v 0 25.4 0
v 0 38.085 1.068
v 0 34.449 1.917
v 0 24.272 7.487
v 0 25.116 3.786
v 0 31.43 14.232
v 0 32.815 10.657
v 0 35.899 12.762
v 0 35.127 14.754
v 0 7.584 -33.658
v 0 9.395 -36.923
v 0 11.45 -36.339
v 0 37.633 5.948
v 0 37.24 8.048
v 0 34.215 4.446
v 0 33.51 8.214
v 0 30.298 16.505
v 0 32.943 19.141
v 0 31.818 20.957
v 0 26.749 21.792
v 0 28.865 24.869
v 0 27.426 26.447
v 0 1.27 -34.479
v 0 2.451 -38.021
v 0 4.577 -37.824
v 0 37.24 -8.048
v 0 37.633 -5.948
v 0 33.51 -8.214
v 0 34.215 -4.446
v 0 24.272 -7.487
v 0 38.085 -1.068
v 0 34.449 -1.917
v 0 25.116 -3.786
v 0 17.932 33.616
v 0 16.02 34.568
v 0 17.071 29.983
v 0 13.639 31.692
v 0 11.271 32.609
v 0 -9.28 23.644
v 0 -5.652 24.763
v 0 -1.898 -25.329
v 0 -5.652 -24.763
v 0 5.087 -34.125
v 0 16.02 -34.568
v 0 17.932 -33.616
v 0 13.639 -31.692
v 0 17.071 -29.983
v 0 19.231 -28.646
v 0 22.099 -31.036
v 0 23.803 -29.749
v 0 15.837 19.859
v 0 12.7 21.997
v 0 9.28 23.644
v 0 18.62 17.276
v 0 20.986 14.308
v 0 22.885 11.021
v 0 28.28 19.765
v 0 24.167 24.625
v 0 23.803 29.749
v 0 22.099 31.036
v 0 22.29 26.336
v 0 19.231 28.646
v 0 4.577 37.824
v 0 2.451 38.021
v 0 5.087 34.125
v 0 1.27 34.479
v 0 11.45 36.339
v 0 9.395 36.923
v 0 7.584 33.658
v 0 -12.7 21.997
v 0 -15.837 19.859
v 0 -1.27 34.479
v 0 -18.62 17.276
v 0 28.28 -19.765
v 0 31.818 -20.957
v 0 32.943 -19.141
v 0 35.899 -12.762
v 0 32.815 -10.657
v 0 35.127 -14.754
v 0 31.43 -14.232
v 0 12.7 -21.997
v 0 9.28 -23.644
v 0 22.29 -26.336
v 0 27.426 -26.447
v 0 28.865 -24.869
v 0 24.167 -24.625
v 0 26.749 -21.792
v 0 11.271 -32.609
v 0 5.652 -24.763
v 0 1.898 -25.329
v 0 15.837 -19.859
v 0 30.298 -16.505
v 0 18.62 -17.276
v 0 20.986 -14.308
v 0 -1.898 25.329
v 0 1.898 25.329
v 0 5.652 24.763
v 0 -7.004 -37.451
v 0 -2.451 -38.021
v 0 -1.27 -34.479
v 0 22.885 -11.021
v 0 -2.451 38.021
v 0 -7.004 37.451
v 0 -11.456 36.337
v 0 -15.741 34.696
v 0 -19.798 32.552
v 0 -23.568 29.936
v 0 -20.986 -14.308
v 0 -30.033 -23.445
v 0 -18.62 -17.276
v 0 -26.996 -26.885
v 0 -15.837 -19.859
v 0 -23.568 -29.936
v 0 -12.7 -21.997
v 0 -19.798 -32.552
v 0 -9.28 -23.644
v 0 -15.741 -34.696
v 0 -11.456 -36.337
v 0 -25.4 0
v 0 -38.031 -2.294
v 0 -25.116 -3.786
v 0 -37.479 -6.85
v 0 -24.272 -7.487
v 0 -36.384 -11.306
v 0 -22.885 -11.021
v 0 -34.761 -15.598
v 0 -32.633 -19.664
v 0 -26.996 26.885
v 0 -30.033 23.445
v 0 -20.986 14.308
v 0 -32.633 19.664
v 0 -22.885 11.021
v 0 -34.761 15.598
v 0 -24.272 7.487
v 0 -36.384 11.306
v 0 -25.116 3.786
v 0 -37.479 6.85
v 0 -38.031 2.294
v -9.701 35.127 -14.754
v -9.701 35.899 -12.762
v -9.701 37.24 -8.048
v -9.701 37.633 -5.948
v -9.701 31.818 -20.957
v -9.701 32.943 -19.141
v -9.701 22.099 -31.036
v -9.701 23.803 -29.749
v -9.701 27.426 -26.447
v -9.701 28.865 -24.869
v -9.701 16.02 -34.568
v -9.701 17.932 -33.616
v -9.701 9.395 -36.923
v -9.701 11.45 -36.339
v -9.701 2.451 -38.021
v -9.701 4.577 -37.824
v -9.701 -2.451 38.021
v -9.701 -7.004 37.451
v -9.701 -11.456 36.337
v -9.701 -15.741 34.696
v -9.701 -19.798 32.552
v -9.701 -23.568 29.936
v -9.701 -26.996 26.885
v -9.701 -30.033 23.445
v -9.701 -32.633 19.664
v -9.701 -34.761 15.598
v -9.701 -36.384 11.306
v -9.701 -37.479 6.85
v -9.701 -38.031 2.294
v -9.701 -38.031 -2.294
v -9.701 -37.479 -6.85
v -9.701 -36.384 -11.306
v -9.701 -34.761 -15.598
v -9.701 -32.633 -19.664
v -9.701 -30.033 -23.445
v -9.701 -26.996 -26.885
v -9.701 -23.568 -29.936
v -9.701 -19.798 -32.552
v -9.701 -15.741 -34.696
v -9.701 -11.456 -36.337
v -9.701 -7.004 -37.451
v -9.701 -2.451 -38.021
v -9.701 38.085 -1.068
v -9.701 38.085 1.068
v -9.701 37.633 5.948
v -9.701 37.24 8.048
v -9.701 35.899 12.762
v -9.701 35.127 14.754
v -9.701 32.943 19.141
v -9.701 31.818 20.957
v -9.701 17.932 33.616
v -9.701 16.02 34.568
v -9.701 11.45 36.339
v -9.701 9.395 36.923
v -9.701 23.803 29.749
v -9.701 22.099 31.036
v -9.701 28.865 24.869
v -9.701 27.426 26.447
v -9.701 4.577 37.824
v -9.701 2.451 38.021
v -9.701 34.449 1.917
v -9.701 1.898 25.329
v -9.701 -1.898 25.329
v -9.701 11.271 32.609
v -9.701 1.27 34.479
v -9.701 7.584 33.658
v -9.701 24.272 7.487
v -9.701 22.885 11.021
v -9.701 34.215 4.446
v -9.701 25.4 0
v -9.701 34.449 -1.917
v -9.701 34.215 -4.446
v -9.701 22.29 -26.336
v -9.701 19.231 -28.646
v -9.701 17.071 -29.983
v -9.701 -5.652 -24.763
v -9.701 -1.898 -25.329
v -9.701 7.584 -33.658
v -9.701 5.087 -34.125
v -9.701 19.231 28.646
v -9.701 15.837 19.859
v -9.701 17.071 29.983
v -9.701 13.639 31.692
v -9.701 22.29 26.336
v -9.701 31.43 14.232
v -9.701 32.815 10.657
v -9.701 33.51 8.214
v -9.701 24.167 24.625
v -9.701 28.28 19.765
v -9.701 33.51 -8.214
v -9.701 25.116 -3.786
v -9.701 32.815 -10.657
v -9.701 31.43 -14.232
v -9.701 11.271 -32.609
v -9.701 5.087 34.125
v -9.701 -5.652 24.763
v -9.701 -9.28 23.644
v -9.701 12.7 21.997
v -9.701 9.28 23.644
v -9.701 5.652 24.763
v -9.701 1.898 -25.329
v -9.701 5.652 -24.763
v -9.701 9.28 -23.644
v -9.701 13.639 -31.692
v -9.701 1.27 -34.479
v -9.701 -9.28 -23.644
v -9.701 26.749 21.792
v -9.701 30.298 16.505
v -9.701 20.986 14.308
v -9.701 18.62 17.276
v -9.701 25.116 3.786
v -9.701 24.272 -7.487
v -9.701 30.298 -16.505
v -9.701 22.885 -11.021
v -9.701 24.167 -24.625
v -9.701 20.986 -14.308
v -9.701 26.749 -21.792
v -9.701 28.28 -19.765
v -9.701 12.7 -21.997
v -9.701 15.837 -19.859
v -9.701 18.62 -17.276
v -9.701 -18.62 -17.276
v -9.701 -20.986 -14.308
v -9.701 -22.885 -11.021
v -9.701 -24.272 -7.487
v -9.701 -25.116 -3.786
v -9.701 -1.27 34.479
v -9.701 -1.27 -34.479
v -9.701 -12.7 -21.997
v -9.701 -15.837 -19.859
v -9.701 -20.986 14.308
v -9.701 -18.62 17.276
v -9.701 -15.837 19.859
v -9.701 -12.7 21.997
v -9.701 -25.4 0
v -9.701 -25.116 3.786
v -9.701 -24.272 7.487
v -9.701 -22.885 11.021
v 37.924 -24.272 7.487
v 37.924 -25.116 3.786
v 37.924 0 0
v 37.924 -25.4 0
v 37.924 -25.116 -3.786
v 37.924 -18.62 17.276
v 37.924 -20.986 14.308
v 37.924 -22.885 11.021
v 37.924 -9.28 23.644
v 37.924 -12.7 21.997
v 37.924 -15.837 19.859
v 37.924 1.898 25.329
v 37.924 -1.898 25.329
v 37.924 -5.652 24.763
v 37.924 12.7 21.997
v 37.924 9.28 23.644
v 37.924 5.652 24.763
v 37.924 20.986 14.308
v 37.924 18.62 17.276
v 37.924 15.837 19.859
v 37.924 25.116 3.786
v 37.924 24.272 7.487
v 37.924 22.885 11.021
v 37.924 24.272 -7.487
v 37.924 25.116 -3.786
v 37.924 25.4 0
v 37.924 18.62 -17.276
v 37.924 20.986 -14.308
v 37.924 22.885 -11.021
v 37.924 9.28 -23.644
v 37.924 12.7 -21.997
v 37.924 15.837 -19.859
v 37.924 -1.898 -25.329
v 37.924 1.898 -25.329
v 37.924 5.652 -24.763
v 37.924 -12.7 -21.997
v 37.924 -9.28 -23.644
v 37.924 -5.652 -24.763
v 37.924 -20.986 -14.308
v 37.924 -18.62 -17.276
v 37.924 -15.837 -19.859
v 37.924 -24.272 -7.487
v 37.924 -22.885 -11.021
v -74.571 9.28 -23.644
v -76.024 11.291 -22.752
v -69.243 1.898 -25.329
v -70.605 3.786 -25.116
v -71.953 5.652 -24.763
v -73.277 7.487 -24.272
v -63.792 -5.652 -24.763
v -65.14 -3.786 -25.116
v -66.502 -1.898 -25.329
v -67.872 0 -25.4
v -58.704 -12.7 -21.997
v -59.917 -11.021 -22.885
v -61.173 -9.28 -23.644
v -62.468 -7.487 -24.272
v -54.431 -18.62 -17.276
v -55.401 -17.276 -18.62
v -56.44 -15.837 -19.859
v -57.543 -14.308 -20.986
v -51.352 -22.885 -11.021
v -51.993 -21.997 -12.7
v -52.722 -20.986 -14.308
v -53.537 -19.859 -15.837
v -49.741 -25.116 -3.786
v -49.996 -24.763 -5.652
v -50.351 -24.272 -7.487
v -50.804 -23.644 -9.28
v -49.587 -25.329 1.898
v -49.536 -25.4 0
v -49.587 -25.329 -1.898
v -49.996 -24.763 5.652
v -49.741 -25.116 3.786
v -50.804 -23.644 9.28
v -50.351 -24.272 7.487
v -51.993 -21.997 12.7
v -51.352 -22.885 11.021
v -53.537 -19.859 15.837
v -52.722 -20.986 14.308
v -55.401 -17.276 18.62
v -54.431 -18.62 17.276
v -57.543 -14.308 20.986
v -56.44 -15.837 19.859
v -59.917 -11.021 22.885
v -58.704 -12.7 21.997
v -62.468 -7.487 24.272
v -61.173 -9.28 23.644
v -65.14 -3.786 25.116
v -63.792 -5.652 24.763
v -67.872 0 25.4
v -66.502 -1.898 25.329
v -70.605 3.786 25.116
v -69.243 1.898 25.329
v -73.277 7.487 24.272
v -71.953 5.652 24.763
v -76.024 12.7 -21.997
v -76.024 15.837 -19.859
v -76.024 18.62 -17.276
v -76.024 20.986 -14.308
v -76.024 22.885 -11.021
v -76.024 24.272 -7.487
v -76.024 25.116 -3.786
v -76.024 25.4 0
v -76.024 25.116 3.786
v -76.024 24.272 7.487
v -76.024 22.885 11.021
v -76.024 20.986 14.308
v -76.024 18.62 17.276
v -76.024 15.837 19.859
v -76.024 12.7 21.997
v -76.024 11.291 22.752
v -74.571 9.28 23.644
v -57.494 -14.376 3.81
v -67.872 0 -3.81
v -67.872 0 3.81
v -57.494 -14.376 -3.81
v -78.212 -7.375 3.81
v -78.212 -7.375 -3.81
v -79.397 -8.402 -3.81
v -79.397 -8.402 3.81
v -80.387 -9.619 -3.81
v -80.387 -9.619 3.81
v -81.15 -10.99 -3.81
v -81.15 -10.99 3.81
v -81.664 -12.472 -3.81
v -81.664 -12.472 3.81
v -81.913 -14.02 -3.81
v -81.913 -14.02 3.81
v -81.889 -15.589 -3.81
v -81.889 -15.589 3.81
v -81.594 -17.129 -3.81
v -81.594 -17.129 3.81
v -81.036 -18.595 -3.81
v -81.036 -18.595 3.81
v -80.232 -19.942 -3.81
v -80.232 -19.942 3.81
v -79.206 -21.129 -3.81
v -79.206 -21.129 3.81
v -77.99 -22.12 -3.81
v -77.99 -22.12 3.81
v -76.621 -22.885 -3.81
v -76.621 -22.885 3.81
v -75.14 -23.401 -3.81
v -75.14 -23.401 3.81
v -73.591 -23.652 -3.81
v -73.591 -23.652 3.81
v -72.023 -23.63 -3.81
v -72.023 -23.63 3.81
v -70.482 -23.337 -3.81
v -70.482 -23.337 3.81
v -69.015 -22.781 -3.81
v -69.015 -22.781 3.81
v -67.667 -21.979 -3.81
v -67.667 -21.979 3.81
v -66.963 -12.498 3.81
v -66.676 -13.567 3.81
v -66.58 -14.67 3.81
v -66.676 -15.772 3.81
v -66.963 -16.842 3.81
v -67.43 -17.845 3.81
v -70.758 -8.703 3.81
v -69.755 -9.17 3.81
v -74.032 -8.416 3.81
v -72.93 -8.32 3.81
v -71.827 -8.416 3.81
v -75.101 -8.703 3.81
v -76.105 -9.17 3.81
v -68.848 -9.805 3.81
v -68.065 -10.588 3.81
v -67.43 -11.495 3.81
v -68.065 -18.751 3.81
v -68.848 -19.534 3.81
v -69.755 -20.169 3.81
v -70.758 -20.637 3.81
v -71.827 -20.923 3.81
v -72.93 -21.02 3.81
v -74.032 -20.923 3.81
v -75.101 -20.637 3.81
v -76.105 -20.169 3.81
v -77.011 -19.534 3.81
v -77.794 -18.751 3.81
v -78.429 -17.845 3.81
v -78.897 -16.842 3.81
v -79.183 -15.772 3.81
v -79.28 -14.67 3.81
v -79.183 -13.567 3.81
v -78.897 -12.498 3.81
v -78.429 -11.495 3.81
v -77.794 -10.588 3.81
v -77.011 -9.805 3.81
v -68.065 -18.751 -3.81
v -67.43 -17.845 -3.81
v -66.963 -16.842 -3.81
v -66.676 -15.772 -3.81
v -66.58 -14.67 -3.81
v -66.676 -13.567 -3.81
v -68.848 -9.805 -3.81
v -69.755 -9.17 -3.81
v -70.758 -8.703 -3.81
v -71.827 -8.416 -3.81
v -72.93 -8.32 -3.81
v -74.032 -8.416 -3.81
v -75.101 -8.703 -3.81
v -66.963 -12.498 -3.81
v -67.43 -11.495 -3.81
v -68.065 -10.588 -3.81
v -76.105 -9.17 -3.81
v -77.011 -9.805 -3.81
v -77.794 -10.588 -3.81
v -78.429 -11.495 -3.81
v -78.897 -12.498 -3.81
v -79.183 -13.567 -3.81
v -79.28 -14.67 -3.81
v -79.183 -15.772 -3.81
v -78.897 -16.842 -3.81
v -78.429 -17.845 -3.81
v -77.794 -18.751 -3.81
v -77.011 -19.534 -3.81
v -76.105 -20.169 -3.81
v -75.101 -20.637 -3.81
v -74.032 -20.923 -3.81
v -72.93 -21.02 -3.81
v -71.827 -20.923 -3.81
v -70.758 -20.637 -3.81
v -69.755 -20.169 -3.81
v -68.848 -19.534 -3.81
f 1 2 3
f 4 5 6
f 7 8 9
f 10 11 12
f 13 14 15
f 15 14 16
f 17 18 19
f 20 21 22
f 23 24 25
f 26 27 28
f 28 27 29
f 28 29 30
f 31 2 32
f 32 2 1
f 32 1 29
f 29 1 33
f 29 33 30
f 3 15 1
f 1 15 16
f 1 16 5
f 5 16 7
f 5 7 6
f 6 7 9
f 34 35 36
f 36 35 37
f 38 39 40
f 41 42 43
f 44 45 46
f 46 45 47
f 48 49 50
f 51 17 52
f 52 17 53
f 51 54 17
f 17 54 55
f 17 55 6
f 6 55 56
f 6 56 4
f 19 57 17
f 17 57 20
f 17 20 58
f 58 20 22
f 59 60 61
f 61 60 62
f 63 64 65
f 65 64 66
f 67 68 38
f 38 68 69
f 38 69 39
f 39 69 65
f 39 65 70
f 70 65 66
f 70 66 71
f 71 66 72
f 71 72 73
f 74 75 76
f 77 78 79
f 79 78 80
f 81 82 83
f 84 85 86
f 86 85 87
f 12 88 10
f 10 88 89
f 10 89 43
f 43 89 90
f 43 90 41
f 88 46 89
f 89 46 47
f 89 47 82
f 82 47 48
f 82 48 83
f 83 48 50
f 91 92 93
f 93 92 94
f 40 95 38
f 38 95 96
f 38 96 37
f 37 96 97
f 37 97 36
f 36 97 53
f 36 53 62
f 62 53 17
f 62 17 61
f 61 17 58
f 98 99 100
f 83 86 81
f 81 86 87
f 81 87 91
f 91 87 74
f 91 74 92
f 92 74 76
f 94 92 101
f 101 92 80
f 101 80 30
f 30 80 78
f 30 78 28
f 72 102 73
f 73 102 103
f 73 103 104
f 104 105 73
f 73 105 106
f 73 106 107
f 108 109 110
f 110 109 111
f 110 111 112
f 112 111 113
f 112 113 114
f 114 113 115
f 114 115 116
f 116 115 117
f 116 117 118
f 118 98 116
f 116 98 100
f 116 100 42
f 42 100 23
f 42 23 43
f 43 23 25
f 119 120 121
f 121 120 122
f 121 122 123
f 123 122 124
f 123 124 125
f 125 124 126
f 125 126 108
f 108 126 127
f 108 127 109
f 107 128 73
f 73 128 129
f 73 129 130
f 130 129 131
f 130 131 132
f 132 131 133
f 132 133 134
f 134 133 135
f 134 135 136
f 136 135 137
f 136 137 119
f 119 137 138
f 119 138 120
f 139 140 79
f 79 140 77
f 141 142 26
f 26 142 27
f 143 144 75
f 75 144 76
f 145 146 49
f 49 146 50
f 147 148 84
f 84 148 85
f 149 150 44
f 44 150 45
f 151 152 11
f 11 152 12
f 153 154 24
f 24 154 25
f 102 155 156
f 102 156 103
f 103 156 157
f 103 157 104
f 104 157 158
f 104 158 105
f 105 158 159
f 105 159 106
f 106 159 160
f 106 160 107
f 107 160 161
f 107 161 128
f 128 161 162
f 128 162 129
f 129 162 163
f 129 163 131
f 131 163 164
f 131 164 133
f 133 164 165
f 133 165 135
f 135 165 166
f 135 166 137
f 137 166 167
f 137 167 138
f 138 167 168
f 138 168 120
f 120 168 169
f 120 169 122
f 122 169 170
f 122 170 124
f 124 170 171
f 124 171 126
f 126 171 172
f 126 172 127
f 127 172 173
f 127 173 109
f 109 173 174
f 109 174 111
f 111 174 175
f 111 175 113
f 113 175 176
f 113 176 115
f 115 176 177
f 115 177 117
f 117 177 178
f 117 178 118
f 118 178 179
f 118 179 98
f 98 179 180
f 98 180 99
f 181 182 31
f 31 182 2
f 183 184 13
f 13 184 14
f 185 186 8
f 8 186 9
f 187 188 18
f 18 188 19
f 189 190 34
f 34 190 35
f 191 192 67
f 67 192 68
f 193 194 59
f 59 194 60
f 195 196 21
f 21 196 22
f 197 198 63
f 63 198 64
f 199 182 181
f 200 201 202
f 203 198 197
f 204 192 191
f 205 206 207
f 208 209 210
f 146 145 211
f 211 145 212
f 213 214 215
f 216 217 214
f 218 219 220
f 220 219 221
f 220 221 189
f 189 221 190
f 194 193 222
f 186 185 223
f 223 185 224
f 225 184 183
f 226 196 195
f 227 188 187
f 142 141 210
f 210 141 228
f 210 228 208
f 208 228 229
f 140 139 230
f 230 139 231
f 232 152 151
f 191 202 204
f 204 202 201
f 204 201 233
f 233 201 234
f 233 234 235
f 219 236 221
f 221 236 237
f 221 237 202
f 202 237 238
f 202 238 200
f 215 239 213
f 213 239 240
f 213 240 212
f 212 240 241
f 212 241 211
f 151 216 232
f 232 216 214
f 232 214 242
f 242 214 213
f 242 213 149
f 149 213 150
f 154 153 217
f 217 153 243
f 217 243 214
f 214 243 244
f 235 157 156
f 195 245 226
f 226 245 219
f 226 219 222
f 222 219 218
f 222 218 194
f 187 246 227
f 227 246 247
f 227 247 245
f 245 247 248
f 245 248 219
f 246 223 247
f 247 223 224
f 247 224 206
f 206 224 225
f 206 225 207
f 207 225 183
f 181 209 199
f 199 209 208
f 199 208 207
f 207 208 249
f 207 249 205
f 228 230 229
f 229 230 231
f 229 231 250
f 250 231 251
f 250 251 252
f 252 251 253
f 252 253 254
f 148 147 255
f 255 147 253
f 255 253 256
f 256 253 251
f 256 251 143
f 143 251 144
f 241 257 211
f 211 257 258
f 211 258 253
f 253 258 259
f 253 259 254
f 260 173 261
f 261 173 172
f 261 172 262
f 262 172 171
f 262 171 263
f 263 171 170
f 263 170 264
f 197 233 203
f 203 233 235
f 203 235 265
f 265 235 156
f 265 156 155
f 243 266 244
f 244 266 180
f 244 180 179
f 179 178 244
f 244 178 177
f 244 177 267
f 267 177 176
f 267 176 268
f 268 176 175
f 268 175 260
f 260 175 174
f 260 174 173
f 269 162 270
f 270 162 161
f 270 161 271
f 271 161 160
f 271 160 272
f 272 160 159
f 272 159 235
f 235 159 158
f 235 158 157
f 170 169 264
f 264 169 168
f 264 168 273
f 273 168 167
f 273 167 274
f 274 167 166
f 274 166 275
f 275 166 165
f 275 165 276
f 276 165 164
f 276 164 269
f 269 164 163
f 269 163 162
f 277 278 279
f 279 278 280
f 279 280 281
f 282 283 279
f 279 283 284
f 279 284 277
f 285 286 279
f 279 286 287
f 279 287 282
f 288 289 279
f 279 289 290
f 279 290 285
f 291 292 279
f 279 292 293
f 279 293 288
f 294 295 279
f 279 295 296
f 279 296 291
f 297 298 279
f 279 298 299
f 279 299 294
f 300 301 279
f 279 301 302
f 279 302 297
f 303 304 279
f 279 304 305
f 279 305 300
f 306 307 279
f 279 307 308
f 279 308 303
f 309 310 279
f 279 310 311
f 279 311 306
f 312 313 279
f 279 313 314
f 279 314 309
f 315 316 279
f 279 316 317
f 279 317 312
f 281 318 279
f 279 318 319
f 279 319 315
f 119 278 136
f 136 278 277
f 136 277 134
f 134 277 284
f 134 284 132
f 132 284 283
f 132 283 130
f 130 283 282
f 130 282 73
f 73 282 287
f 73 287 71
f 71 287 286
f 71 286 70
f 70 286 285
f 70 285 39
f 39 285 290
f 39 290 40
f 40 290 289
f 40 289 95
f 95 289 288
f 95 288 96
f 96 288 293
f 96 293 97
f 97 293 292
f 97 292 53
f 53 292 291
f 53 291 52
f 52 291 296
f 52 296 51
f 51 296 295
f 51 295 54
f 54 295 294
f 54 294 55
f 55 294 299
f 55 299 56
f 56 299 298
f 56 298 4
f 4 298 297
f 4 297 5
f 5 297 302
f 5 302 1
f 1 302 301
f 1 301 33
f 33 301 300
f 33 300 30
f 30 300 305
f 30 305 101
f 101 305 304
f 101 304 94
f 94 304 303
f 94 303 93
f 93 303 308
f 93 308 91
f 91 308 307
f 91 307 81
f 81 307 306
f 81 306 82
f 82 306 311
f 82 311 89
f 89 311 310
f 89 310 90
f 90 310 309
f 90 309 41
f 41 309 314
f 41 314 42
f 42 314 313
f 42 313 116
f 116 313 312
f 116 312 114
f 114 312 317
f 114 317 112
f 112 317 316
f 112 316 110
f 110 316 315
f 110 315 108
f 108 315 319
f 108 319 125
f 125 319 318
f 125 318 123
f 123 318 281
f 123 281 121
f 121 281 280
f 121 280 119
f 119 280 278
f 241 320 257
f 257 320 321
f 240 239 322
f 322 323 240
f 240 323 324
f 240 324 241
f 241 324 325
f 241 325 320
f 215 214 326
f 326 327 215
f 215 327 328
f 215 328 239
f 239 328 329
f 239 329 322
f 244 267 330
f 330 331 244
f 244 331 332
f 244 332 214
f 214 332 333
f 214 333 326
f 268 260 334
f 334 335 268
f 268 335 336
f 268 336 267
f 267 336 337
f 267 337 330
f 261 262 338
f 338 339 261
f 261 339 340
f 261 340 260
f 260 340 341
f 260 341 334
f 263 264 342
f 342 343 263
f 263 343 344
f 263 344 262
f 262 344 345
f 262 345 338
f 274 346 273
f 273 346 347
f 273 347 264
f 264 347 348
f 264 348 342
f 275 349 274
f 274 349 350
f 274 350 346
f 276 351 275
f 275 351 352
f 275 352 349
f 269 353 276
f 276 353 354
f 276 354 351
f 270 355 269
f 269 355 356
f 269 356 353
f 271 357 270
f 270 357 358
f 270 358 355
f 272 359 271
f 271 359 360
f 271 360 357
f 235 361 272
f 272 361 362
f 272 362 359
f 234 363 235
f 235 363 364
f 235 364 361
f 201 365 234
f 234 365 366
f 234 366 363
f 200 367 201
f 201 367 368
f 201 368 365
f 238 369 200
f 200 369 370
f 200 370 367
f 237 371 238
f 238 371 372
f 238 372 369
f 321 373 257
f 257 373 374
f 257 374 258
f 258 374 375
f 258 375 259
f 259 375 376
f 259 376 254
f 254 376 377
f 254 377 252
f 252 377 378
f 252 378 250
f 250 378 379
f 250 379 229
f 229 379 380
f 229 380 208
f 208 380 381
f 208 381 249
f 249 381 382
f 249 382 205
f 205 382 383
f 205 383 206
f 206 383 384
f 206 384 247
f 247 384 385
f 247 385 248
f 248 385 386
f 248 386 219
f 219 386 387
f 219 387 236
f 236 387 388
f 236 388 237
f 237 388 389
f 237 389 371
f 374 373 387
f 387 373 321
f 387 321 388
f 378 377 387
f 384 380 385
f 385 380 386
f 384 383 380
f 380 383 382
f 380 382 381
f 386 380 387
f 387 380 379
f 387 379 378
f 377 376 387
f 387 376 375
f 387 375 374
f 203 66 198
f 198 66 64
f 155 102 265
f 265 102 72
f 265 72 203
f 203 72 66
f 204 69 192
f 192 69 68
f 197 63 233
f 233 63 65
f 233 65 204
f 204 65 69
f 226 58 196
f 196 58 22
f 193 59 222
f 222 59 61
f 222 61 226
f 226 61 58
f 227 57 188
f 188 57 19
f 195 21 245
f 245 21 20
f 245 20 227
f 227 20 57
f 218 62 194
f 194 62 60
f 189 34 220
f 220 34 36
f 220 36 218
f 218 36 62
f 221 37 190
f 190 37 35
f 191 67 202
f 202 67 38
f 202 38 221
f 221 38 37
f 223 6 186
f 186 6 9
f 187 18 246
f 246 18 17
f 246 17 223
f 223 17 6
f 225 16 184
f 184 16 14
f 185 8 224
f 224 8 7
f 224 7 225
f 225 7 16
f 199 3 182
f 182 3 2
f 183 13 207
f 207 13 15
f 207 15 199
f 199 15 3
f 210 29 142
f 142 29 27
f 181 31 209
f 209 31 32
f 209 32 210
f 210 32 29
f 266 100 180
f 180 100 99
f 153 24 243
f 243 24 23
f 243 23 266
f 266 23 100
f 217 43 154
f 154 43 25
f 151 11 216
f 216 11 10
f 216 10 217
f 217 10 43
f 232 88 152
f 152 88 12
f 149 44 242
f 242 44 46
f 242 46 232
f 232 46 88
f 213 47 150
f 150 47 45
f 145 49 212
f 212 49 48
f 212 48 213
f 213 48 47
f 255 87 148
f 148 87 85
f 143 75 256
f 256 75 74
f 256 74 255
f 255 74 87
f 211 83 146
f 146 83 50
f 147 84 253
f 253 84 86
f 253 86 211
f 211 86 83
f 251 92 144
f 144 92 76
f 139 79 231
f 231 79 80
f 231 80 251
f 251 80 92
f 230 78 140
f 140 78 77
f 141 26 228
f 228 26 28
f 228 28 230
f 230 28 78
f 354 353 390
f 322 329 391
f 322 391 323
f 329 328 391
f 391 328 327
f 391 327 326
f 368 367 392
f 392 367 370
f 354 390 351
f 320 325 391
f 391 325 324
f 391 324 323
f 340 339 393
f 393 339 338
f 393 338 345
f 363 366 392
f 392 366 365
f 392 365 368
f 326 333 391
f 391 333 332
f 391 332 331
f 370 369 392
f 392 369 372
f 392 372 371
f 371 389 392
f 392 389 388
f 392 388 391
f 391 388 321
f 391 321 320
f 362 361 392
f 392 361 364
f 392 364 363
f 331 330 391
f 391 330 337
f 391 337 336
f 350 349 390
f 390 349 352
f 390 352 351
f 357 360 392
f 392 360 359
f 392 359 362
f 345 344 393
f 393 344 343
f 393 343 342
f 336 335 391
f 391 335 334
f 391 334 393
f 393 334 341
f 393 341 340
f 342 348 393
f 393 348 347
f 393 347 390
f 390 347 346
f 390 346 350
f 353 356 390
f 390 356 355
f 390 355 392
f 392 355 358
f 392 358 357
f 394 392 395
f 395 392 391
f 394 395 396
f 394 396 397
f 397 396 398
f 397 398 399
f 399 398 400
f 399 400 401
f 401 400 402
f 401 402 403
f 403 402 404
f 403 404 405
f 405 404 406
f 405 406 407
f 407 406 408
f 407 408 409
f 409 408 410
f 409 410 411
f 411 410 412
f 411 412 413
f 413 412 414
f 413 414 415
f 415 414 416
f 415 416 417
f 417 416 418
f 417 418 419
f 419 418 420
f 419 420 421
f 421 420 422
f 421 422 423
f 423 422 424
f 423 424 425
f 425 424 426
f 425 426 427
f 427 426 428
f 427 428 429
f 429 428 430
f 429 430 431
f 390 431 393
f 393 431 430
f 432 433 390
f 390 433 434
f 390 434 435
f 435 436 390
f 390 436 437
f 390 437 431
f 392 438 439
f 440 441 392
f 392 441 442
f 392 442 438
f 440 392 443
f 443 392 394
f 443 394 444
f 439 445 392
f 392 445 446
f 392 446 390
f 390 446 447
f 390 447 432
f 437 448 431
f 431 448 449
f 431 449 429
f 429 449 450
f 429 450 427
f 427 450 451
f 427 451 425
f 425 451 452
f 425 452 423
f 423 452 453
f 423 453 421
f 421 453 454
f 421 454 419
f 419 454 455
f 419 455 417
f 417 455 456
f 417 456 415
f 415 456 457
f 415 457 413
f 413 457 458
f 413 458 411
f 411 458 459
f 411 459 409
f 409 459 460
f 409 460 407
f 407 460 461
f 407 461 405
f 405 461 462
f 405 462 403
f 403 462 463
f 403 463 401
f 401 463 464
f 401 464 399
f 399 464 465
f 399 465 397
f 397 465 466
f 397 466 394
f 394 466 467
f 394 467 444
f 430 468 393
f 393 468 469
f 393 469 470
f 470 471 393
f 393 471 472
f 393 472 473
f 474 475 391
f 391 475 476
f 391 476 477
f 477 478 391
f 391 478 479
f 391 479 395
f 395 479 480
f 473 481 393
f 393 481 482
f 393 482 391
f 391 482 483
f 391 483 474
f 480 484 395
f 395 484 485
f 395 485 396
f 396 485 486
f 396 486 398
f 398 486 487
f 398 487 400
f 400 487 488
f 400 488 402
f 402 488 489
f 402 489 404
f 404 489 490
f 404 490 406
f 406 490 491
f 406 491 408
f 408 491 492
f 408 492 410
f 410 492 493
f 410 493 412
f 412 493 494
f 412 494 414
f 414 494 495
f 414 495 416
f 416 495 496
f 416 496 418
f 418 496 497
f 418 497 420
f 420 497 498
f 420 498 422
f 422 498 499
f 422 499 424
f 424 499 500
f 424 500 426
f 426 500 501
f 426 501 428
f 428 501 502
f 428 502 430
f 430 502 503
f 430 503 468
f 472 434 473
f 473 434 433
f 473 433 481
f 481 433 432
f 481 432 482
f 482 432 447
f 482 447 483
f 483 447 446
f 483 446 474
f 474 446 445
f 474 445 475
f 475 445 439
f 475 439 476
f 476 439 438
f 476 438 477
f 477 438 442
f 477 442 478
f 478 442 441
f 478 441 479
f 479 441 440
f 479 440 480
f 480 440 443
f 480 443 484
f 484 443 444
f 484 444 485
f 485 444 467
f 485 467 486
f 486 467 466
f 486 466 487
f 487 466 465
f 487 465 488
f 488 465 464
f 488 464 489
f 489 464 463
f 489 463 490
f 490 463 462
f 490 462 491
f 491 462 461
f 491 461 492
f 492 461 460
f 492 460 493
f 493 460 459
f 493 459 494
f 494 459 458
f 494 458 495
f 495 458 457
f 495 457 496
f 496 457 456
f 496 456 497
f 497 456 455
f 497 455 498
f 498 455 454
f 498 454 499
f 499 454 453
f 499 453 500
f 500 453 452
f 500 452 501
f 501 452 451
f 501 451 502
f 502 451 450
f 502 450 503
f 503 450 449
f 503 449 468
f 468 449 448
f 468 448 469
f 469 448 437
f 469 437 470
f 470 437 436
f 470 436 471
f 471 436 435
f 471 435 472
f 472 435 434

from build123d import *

# Parameters (mm, degrees)
CUT_EXTRUDE1_DEPTH      = 86.450904972
CIRPATTERN1_COUNT       = 18
CIRPATTERN1_ANGLE       = 180
CUT_EXTRUDE2_DEPTH      = 94.149359325
CUT_EXTRUDE2_DEPTH_BACK = 94.149359325
BOSS_EXTRUDE1_DEPTH     = 3.81
CUT_EXTRUDE4_DEPTH      = 100.573936521
CUT_EXTRUDE4_DEPTH_BACK = 100.573936521
SKETCH9_R               = 6.35


with BuildPart() as part:
    # Sketch2 → Revolve1 (revolve)
    with BuildSketch(Plane(origin=(0, 0, 0), x_dir=(0, 1, 0), z_dir=(0, 0, 1))):
        Polygon((0, -37.923611111), (-25.4, -37.923611111), (-25.4, 0), (-38.1, 0), (-38.1, 9.701388889), (-25.4, 9.701388889), (-25.4, 76.023611111), (0, 76.023611111), align=None)
    revolve(axis=Axis((-76.023611111, 0, 0), (1, 0, 0)))

    # Sketch3 → Cut-Extrude1 (cut, through all)
    with BuildSketch(Plane(origin=(-9.701388889, 0, 0), x_dir=(0, -1, 0), z_dir=(-1, 0, 0))):
        Polygon((0, 38.288766927), (2.54, 38.288766927), (1.27, 34.478766927), (0, 34.478766927), (-1.27, 34.478766927), (-2.54, 38.288766927), align=None)
    cut_extrude1 = extrude(amount=-CUT_EXTRUDE1_DEPTH, mode=Mode.SUBTRACT)

    # CirPattern1: Cut-Extrude1 ×18 about axis
    cirpattern1_axis = Axis((0, 0, 0), (-1, 0, 0))
    for i in range(1, CIRPATTERN1_COUNT):
        add(cut_extrude1.rotate(cirpattern1_axis, i * CIRPATTERN1_ANGLE / (CIRPATTERN1_COUNT - 1)), mode=Mode.SUBTRACT)

    # Sketch5 → Cut-Extrude2 (cut, two sides: drawn at the far end of the back side and taken through both)
    with BuildSketch(Plane(origin=(0, 0, 0), x_dir=(0, 1, 0), z_dir=(0, 0, 1)).offset(-CUT_EXTRUDE2_DEPTH_BACK)):
        Polygon((11.291183517, 76.023611111), (-25.4, 76.023611111), (-25.4, 49.536195496), align=None)
    extrude(amount=CUT_EXTRUDE2_DEPTH + CUT_EXTRUDE2_DEPTH_BACK, mode=Mode.SUBTRACT)

    # Sketch7 → Boss-Extrude1 (add, symmetric)
    with BuildSketch(Plane(origin=(0, 0, 0), x_dir=(0, 1, 0), z_dir=(0, 0, 1))):
        with BuildLine():
            Line((0, 67.872490271), (-7.374879009, 78.211791969))
            ThreePointArc((-7.374879009, 78.211791969), (-19.941931013, 80.231629124), (-21.978787639, 67.667324397))
            Line((-21.978787639, 67.667324397), (-14.376066372, 57.494388275))
            Line((-14.376066372, 57.494388275), (-7.054408242, 62.779903303))
            Line((-7.054408242, 62.779903303), (0, 67.872490271))
        make_face()
    extrude(amount=BOSS_EXTRUDE1_DEPTH, both=True)

    # Sketch9 → Cut-Extrude4 (cut, two sides: drawn at the far end of the back side and taken through both)
    with BuildSketch(Plane.XY.offset(3.81).offset(-CUT_EXTRUDE4_DEPTH_BACK)):
        with Locations((-72.929668111, -14.66969239)):
            Circle(SKETCH9_R)
    extrude(amount=CUT_EXTRUDE4_DEPTH + CUT_EXTRUDE4_DEPTH_BACK, mode=Mode.SUBTRACT)


solid = part.part
